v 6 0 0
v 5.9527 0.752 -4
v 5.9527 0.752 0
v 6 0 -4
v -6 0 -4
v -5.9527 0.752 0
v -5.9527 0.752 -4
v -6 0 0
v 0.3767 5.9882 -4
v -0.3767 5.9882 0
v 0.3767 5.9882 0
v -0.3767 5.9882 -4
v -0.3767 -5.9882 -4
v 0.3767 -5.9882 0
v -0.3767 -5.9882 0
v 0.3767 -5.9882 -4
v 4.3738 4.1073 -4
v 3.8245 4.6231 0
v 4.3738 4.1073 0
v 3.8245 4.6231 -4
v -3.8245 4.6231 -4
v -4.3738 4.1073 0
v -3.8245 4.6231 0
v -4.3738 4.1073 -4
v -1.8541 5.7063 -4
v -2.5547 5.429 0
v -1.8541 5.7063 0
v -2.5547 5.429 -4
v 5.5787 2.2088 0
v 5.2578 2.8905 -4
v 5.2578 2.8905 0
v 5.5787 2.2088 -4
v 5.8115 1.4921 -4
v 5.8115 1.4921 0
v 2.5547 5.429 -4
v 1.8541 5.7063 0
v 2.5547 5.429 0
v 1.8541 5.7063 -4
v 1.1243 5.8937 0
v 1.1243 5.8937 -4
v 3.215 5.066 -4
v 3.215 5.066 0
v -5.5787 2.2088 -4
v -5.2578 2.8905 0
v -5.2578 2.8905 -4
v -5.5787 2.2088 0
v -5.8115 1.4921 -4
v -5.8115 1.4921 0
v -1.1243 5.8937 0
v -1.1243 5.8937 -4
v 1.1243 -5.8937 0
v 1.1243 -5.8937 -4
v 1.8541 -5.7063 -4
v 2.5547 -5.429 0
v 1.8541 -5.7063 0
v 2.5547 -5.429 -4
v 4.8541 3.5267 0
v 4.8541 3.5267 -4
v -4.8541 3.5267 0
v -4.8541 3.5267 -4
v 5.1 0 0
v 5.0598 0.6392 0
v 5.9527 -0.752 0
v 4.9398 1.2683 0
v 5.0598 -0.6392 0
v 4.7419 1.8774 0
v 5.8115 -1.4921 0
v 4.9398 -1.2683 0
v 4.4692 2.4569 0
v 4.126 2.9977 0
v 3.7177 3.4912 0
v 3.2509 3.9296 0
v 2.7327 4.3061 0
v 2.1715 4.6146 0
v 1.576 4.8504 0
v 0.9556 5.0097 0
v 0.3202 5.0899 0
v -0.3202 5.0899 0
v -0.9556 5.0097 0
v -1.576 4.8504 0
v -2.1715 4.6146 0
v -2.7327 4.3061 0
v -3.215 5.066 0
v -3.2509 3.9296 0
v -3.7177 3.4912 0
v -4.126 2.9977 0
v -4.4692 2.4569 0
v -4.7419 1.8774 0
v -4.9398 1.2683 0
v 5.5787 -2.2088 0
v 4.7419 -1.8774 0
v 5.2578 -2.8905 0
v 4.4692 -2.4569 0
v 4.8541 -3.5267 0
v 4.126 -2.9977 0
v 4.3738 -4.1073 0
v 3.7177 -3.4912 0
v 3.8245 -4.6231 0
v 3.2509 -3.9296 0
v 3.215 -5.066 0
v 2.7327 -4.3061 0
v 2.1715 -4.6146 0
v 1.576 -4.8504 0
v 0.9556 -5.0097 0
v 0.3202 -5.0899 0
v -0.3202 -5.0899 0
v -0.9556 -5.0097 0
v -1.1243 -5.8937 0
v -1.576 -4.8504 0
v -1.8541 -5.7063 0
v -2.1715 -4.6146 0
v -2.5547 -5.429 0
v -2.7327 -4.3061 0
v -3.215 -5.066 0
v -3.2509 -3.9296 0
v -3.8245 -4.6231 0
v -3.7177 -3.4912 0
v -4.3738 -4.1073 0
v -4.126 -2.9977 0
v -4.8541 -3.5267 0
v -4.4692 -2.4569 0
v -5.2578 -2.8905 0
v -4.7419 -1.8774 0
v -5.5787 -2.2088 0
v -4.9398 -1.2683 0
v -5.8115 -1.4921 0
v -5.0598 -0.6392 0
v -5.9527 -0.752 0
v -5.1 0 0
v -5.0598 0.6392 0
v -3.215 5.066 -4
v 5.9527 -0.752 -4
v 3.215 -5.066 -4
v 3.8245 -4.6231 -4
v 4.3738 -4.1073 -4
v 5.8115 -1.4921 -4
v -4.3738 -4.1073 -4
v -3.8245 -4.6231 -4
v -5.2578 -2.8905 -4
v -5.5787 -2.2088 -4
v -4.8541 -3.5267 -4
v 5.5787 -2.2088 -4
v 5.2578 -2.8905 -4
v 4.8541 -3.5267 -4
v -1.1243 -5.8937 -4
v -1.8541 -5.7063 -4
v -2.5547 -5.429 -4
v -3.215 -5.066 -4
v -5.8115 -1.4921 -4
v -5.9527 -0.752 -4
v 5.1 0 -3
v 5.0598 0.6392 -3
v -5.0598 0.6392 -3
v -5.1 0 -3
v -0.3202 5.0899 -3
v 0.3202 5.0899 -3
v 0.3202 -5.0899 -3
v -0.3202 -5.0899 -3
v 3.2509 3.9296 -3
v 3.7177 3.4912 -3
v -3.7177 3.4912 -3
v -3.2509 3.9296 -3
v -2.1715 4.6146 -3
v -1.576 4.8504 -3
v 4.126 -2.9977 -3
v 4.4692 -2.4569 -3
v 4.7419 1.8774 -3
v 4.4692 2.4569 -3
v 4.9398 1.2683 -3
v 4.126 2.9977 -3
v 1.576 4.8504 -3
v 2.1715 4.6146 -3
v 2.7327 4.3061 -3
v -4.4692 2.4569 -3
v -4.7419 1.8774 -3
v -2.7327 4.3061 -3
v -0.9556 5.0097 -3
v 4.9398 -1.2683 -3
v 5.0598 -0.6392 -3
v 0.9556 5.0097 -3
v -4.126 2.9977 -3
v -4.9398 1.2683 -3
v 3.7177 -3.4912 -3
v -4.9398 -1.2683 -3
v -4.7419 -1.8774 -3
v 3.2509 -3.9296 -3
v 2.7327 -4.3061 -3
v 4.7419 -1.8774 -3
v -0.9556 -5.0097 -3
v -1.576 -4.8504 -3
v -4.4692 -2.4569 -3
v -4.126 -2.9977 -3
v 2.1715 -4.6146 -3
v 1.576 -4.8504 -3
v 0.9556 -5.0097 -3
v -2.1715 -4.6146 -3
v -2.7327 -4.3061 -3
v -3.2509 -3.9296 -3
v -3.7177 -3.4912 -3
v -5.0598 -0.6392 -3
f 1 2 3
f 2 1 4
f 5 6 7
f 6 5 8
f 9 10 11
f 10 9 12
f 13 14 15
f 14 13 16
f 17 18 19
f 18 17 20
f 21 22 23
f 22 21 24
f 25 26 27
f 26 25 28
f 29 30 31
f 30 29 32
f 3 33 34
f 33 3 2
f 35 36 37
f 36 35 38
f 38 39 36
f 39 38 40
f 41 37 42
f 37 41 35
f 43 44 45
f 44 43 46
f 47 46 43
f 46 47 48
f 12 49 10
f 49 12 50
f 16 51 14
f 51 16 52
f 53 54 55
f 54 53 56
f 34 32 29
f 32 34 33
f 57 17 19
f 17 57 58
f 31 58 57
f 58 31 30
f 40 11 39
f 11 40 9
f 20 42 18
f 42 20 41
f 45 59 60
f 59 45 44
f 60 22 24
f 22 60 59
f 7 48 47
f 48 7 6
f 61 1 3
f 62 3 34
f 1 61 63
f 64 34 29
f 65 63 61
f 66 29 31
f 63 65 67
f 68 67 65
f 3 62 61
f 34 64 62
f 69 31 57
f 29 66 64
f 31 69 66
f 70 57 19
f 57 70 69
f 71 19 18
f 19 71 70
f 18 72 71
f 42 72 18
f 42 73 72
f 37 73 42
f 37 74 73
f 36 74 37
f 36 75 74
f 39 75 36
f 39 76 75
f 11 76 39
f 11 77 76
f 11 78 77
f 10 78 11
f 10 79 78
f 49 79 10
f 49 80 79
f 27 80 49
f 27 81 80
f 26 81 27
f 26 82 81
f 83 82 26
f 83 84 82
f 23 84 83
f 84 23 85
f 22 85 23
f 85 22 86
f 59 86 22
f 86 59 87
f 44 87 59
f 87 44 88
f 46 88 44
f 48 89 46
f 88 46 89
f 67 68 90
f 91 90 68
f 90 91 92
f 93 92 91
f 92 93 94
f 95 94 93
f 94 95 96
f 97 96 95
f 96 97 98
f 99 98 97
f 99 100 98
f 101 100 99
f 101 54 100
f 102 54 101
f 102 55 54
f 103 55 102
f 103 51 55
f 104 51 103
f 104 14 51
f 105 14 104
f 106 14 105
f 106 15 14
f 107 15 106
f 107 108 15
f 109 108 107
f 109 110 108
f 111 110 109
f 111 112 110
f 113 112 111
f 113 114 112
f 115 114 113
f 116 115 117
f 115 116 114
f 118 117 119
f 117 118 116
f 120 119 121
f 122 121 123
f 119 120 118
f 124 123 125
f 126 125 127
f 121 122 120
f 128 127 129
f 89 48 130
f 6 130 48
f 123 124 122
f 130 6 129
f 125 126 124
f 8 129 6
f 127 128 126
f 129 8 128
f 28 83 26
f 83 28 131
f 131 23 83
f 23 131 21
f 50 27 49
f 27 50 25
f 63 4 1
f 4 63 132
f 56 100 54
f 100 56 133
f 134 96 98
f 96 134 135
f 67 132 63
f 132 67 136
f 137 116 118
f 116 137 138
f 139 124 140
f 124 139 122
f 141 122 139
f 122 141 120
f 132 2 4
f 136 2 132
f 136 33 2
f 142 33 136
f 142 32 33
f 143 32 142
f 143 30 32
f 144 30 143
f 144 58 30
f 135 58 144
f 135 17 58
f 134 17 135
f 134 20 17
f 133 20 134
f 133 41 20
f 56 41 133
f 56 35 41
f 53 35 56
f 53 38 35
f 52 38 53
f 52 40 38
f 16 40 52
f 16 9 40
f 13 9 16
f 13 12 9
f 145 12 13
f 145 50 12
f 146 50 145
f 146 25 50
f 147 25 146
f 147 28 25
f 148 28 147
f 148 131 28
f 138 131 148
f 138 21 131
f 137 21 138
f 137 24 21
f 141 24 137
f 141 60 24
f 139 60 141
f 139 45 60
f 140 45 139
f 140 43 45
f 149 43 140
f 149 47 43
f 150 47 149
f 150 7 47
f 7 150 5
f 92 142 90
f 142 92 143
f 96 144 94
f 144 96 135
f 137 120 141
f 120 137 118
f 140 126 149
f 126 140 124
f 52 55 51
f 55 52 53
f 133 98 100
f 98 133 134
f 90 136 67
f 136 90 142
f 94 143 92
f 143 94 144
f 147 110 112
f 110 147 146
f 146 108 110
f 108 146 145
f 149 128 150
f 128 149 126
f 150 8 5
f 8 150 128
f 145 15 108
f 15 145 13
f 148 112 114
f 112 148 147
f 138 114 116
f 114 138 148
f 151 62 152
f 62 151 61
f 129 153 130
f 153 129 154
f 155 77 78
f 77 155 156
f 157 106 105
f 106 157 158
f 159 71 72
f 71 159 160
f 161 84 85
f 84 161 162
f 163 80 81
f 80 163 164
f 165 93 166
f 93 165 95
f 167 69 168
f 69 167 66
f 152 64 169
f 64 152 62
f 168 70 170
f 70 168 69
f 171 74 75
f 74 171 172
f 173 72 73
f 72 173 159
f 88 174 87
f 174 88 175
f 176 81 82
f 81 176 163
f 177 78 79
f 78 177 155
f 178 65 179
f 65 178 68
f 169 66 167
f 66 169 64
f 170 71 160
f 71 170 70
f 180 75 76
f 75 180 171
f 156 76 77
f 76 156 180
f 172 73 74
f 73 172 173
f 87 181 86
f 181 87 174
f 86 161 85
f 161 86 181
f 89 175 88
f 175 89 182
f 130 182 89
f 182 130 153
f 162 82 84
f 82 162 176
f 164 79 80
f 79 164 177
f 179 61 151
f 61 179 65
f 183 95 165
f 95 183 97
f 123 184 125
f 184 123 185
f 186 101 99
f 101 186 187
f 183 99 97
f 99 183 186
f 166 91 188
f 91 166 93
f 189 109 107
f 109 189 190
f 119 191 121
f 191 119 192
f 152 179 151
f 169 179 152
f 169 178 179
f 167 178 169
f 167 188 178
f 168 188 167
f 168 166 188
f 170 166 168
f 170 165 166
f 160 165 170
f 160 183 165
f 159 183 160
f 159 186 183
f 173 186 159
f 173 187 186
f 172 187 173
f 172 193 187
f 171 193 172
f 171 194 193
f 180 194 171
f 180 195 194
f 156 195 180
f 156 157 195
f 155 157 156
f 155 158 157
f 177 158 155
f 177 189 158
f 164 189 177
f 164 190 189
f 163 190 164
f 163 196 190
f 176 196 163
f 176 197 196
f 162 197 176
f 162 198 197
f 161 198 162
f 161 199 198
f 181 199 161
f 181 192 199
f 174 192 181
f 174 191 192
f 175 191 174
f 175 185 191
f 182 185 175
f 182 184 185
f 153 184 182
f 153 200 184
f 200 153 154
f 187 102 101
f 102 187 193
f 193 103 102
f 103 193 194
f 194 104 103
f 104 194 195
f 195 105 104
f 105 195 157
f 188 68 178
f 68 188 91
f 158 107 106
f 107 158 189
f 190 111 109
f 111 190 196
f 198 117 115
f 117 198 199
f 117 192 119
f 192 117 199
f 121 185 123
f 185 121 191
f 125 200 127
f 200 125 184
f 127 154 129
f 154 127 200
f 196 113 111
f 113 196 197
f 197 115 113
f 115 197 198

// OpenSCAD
$fn = 50;


difference() {
	union() {
		translate(v = [0, 0, -4.0000000000]) {
			cylinder(h = 4, r = 6.0000000000);
		}
	}
	union() {
		#translate(v = [0, 0, -3.0000000000]) {
			cylinder(h = 3, r = 5.1000000000);
		}
	}
}
